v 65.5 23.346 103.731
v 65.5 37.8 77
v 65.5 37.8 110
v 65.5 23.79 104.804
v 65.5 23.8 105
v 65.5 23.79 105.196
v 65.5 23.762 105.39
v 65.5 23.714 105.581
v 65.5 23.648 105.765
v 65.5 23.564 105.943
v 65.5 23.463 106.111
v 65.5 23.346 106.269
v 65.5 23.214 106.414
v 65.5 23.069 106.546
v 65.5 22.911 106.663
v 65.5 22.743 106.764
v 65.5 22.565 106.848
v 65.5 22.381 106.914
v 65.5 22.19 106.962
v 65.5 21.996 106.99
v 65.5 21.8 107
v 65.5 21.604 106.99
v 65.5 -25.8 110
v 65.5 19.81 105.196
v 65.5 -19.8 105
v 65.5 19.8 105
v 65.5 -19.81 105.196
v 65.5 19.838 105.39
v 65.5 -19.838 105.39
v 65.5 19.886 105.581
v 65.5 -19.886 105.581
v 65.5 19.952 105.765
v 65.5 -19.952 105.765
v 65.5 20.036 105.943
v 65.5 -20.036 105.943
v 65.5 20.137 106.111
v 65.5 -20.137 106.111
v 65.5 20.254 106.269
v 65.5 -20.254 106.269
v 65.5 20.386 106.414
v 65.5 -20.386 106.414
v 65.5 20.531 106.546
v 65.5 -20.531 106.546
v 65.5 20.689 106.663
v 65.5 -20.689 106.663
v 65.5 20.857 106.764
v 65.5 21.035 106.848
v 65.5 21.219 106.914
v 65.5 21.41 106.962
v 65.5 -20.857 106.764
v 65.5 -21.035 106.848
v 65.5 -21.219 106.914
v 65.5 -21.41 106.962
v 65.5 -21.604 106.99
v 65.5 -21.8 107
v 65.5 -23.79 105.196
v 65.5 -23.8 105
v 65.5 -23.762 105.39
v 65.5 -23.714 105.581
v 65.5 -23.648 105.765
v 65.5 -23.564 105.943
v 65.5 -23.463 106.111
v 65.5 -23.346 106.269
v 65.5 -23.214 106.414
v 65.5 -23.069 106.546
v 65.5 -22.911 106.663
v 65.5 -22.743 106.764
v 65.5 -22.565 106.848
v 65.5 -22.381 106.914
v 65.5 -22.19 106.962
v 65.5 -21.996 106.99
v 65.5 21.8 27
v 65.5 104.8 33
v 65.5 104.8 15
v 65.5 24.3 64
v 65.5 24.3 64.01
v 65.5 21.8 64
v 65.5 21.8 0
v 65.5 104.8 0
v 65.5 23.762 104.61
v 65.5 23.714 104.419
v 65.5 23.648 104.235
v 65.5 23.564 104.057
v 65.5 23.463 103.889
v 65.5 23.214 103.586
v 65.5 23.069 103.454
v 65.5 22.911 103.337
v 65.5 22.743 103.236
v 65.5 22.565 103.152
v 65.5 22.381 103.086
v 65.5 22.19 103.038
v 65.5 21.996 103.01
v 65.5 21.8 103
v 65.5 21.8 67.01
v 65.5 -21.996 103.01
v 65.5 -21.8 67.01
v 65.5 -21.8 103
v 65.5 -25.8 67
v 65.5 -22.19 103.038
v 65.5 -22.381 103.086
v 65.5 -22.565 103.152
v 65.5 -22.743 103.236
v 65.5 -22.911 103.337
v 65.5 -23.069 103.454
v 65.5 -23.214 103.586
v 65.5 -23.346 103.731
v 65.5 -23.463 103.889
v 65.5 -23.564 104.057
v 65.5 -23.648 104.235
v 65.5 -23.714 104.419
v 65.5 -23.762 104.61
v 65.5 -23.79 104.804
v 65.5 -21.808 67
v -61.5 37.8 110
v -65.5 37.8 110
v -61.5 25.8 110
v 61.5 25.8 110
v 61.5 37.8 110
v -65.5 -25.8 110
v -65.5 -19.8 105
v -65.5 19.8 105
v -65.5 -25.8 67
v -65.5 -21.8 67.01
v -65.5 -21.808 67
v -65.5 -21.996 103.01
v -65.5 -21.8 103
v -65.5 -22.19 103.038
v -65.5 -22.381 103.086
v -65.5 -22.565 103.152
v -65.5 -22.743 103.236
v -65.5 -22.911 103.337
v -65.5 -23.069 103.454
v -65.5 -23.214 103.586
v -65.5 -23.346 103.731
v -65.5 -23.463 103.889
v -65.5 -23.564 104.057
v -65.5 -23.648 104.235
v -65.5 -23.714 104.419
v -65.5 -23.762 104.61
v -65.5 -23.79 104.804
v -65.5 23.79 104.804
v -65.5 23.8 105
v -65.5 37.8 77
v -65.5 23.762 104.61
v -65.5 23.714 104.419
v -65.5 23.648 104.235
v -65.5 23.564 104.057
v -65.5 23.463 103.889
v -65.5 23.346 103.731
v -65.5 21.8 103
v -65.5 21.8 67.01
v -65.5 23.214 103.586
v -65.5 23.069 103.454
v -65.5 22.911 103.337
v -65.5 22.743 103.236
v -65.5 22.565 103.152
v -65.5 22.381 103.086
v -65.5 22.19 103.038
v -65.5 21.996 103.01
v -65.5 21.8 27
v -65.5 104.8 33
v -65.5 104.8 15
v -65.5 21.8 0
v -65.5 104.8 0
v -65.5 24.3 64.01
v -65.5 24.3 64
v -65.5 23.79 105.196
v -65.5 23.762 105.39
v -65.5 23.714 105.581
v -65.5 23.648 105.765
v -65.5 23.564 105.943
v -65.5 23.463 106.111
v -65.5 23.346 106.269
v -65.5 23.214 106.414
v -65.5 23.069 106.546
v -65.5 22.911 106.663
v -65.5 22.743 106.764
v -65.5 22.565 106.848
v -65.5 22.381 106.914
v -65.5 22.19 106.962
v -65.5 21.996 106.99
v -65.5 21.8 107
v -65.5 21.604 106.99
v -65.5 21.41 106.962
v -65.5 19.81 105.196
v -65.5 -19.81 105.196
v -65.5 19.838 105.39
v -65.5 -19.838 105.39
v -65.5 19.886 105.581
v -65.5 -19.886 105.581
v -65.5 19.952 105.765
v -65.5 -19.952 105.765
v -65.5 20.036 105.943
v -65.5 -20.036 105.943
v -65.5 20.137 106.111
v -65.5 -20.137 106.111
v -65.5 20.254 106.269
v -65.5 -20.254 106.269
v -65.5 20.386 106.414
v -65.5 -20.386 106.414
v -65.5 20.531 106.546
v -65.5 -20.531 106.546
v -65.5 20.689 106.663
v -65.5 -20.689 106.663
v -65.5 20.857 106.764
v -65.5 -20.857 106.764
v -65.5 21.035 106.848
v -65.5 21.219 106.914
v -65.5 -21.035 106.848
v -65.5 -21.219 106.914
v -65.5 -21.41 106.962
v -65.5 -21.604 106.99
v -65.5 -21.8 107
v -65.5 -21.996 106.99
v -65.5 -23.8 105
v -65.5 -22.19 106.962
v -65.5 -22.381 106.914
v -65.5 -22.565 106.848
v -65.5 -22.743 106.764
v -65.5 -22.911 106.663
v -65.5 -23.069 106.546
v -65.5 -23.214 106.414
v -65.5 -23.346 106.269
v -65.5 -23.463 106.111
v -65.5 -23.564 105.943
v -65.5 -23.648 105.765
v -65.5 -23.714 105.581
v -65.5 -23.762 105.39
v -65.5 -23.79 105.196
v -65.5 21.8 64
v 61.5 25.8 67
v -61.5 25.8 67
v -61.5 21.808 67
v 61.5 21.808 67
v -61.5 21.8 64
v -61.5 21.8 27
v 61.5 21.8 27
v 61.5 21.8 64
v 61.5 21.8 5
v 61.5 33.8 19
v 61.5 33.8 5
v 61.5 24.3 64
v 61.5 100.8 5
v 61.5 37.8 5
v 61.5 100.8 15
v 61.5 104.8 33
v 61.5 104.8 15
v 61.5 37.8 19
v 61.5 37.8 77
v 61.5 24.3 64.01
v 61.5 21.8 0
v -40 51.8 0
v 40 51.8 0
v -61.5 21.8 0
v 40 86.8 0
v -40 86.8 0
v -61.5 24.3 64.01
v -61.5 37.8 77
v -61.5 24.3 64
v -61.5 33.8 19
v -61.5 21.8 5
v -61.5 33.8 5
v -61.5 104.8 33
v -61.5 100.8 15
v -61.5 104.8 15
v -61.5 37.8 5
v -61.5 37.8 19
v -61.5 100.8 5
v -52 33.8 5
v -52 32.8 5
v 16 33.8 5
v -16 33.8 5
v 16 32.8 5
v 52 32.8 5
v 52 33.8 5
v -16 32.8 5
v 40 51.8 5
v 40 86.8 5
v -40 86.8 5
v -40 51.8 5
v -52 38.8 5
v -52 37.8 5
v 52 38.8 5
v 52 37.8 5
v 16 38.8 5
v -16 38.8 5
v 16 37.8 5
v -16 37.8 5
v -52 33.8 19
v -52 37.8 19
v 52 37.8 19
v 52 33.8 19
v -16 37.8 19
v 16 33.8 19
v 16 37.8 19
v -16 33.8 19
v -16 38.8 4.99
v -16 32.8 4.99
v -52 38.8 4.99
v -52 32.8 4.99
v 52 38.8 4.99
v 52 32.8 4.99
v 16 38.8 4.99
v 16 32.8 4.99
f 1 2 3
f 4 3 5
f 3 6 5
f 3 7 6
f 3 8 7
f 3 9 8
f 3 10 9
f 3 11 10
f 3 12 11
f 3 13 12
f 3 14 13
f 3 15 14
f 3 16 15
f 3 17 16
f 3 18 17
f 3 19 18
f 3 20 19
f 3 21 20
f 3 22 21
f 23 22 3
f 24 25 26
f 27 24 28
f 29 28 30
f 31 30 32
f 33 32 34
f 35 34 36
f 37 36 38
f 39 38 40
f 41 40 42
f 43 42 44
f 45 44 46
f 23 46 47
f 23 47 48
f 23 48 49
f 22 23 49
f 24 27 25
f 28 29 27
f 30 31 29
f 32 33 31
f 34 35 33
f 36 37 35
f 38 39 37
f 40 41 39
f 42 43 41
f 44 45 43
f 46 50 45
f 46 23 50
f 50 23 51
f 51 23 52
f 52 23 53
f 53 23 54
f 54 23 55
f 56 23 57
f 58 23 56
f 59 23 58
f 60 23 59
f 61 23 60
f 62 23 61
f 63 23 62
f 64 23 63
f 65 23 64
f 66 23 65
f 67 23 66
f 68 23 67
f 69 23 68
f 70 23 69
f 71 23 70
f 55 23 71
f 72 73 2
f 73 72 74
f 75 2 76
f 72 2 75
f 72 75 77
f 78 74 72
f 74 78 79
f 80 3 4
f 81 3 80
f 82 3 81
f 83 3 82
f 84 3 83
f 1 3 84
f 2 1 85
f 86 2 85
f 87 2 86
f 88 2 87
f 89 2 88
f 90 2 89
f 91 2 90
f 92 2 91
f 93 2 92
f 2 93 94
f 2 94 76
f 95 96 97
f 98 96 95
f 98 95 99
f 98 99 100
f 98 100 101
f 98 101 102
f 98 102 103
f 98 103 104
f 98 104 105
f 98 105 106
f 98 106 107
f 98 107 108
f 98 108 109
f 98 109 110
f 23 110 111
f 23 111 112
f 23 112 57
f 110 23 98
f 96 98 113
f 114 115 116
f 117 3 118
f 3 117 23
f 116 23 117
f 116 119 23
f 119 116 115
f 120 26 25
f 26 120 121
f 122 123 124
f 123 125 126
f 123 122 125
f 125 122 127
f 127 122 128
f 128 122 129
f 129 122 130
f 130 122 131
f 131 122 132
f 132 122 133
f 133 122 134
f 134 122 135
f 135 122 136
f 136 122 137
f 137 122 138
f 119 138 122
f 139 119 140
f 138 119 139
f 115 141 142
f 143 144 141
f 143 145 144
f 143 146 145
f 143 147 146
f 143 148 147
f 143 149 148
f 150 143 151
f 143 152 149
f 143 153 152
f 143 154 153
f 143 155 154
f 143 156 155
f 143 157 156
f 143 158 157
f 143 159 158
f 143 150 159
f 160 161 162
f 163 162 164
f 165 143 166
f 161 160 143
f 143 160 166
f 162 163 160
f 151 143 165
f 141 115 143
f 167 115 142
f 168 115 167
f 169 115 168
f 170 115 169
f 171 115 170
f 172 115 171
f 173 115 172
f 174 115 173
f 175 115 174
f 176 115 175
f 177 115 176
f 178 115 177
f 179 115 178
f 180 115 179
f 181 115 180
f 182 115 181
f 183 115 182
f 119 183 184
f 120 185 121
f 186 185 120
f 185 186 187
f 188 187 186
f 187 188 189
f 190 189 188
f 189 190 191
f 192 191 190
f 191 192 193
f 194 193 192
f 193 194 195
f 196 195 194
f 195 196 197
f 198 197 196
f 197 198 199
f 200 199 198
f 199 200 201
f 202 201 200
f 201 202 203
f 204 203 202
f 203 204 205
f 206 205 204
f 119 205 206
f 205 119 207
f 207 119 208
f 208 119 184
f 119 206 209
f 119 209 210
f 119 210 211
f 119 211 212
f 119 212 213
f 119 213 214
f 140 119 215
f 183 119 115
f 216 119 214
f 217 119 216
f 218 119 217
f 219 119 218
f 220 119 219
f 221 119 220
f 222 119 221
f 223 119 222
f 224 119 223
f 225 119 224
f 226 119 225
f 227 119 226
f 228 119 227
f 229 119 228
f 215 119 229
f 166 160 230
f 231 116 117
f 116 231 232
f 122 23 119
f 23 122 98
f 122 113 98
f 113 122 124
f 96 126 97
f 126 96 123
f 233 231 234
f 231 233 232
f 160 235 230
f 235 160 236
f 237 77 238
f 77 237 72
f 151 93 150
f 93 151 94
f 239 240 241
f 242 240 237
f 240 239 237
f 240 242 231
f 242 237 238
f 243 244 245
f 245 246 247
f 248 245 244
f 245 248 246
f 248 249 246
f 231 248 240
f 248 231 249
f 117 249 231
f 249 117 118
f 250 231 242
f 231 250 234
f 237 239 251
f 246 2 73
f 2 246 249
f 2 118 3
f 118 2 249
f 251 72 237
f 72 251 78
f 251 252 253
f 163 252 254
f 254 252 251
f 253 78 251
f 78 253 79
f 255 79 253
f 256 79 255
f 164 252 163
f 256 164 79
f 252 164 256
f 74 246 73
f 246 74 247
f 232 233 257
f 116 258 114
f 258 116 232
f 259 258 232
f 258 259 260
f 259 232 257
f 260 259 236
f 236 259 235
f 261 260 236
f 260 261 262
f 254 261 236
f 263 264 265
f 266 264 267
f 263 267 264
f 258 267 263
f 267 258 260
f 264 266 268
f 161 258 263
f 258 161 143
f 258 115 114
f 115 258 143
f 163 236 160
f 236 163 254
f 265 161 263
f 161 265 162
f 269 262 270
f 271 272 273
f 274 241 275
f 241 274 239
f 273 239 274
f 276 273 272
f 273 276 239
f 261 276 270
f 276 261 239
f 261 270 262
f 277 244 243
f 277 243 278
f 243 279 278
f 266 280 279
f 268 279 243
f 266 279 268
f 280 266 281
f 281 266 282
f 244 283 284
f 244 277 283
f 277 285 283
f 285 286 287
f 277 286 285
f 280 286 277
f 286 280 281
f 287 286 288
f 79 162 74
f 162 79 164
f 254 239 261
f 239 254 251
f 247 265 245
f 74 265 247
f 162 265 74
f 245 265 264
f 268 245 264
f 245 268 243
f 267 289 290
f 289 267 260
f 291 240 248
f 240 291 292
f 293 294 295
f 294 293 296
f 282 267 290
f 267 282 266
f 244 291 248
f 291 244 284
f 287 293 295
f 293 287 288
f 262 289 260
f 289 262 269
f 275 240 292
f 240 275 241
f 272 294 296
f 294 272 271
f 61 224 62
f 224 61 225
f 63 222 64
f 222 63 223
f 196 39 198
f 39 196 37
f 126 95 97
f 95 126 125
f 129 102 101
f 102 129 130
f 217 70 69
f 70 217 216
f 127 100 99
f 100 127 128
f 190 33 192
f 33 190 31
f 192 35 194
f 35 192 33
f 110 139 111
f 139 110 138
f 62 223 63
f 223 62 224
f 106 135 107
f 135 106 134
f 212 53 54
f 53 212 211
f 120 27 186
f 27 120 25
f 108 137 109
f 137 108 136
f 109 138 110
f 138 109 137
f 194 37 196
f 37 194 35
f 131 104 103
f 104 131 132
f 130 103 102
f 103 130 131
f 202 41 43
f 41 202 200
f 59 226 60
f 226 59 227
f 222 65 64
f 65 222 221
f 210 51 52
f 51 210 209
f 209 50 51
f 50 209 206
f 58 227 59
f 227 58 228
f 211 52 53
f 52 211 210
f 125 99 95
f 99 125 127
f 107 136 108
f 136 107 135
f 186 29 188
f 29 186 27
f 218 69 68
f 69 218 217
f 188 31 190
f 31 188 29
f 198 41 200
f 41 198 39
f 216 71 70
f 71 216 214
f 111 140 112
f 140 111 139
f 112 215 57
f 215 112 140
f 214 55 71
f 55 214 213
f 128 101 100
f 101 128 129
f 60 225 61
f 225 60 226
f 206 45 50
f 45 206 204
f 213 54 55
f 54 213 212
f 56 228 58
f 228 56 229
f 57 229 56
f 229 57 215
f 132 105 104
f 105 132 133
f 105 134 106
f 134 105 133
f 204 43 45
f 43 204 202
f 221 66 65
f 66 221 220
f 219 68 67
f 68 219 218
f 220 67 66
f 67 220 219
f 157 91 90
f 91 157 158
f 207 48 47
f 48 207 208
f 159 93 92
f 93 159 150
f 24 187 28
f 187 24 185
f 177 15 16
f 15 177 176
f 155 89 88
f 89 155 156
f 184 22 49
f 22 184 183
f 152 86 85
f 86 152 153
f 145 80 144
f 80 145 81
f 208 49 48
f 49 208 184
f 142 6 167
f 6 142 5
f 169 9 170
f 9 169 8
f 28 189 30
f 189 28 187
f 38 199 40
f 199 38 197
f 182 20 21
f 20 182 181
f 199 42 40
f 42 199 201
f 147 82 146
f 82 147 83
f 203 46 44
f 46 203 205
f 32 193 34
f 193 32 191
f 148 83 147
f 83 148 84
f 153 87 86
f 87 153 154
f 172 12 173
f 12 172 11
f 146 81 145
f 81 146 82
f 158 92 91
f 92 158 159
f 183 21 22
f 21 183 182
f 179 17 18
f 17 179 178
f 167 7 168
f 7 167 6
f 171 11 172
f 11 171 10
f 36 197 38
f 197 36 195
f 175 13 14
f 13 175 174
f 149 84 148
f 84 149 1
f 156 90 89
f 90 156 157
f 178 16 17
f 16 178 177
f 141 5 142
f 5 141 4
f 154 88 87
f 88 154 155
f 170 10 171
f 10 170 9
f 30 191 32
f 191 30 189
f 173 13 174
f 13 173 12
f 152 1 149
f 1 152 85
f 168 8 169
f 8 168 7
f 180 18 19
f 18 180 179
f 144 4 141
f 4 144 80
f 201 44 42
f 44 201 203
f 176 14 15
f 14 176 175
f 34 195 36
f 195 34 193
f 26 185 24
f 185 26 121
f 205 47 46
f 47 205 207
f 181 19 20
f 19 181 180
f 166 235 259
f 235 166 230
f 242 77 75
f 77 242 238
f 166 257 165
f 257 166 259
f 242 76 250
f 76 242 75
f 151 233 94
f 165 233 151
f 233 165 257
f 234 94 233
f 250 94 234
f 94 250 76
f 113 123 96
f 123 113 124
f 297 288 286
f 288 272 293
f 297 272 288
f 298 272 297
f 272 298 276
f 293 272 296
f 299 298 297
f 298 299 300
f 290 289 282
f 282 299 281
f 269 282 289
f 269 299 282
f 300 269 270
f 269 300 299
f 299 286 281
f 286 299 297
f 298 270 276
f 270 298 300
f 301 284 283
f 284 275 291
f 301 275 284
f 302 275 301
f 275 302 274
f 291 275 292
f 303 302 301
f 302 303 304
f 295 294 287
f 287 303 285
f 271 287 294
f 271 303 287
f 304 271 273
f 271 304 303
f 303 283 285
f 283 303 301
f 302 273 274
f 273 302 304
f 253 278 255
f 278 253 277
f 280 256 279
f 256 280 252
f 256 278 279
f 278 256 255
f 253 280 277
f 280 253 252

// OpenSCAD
// =============================================================================
//  定刻起床装置 個人簡易型 SAC-5A型  制御タイマー(型式 SUK-49) 用
//  ベッドフレーム(43 x 43 角パイプ)引っ掛けホルダー
// -----------------------------------------------------------------------------
//  構造
//    ・角パイプに「上からかぶせる」サドル(∩形)
//    ・その外側面に、左右2枚のサイドプレートでぶら下がるポケット
//    ・制御タイマーは上から落とし込んで差し込む
//
//  寸法根拠 (新光電業(株) SAC-5A型 取扱説明書「主な製品仕様」)
//    制御タイマー(SUK-49)  高さ 120 × 幅 120 × 奥行 60 (mm) / 500 (g)
//
//  設計上の逃がし
//    ・背面 : 送風機プラグ差込口 / 電源ケーブル差込口 / 電池カバー(ツマミ)
//             → 背面はほぼ全開。さらにレール外面から STANDOFF だけ離す。
//             → 落とし込み量 DROP により、差込口が角パイプの下端より下に来る
//                ので、プラグを挿しても角パイプに当たらない。
//    ・正面 : 下半分が操作ボタン11個 → リップは FRONT_LIP_H の低い縁のみ。
//             上部の停止A/停止B・ディスプレイはサドルより上に出る。
//
//  座標系 : Z=0 レール上面 / Y=0 レール断面中心 / X = レール長手方向
//           +Y = ベッドの外側(ポケット側) / -Y = ベッド側
//  単位   : mm
// =============================================================================

$fn = 64;

// --------------------------------------------------- 制御タイマー(SUK-49)
DEV_W   = 120;   // 幅   (X)
DEV_H   = 120;   // 高さ (Z) ※参考値。ポケットは全高を覆わない
DEV_D   = 60;    // 奥行 (Y)
DEV_CLR = 1.5;   // 片側クリアランス(角R・印刷誤差ぶん)

// ------------------------------------------------------- ベッドフレーム
RAIL_W   = 43;   // 角パイプ 幅   (Y)
RAIL_H   = 43;   // 角パイプ 高さ (Z) ※掛かりは LEG_DROP で決まる
RAIL_CLR = 0.6;  // はめあいクリアランス(全幅)。きつい→0.8 / 緩い→0.4

// --------------------------------------------------------------- 肉厚等
WALL     = 4;    // 一般肉厚(サイドプレート・リップ)
FLOOR_T  = 5;    // ポケット床厚
TOP_T    = 5;    // サドル天板厚
LEG_DROP = 38;   // サドル脚の掛かり深さ(RAIL_H=43 に対して)

// ------------------------------------------------------------- ポケット
STANDOFF     = 12;  // サドル外面 → 本体背面 の隙間(コネクタ/ツマミ逃がし)
DROP         = 100; // レール上面 → 本体底面 の落とし込み量
SIDE_H_BACK  = 72;  // サイドプレート高さ(背面側)
SIDE_H_FRONT = 28;  // サイドプレート高さ(正面側) ※テーパでつなぐ
FRONT_LIP_H  = 10;  // 正面リップ高さ(操作ボタンを塞がない高さ)
BACK_LIP_H   = 14;  // 背面リップ高さ(本体の位置決め)

// ----------------------------------------------------------- クランプねじ
//   既定では「かぶせるだけ」のシンプルな形。レール上を滑るのが気になる場合だけ
//   CLAMP_SCREWS = true にすると、ベッド側の脚にねじボスが生える。
CLAMP_SCREWS = false; // M4x25 を2本、ベッド側の脚から締めてガタ止め
SCREW_D      = 3.4;   // M4 タッピング下穴
BOSS_D       = 11;    // ねじボス外径
BOSS_L       = 6;     // ねじボス突出量(45度テーパでサポートレス)
SCREW_X      = 30;    // ねじ位置(中心からの距離)
SCREW_Z      = -20;   // ねじ高さ

// ------------------------------------------------------------- オプション
LIGHTEN      = false; // サドル天板の肉抜き窓(見た目より軽さを取るとき true)
FLOOR_WINDOW = true; // 床の肉抜き / ゴミ抜き窓
CABLE_NOTCH  = true; // 背面リップのケーブル逃がし(左右対称)
PLACE_ON_BED = true; // true: 底面が Z=0 に来るよう移動(スライサ用)

// =============================================================================
//  派生寸法
// =============================================================================
cav_w     = RAIL_W + RAIL_CLR;      // レールが通る空間の幅
cav_y     = cav_w / 2;              // その内壁 Y
out_y     = cav_y + WALL;           // サドル外面 Y

pocket_w  = DEV_W + 2 * DEV_CLR;
pocket_d  = DEV_D + 2 * DEV_CLR;
px        = pocket_w / 2;           // ポケット内壁 X
cx        = px + WALL;              // 外壁 X (= サイドプレート外面)

floor_top = -DROP;                  // 本体が載る面
floor_bot = floor_top - FLOOR_T;

back_y    = out_y + STANDOFF;       // 本体 背面の位置
front_y   = back_y + pocket_d;      // 本体 正面の位置
cf_y      = front_y + WALL;         // ポケット外面(正面側)

saddle_x  = 2 * cx;                 // サドル長さ = サイドプレート外面まで

// 対角2点から直方体をつくる汎用モジュール
module bx(x0, x1, y0, y1, z0, z1)
    translate([min(x0, x1), min(y0, y1), min(z0, z1)])
        cube([abs(x1 - x0), abs(y1 - y0), abs(z1 - z0)]);

// =============================================================================
//  1. サドル : 角パイプに上からかぶせる ∩ 形
// =============================================================================
module saddle() {
    // 天板
    bx(-cx, cx, -out_y, out_y, 0, TOP_T);
    // 脚(ベッド側 / 外側)
    bx(-cx, cx, -out_y, -cav_y, -LEG_DROP, TOP_T);
    bx(-cx, cx,  cav_y,  out_y, -LEG_DROP, TOP_T);
    // クランプねじボス : 45度円錐でサポートレス
    if (CLAMP_SCREWS)
        for (sx = [-1, 1])
            translate([sx * SCREW_X, -out_y, SCREW_Z])
                rotate([90, 0, 0])
                    cylinder(d1 = BOSS_D + 2 * BOSS_L, d2 = BOSS_D, h = BOSS_L);
}

// サドル天板の肉抜き窓
//   脚(z < 0)は切らないので、天板を抜いても全体は一体のまま繋がる。
module saddle_lighten() {
    if (LIGHTEN)
        for (sx = [-1, 1])
            bx(sx * 15, sx * 47, -out_y - 1, out_y + 1, 0, TOP_T + 1);
}

// レールが入る空間(下方向に開口)+ 差し込みリード面取り + 天板内隅の逃がし
module rail_cavity() {
    len = saddle_x + 20;
    bx(-len / 2, len / 2, -cav_y, cav_y, -(LEG_DROP + 40), 0);
    // 下端の面取り(はめやすく)
    hull() {
        bx(-len / 2, len / 2, -cav_y, cav_y, -LEG_DROP, -LEG_DROP + 0.01);
        bx(-len / 2, len / 2, -(cav_y + 2.5), cav_y + 2.5,
           -LEG_DROP - 3, -LEG_DROP - 2.99);
    }
    // 天板内隅の逃がし(積層のダレとパイプ角Rを吸収)
    for (sy = [-1, 1])
        translate([-len / 2, sy * cav_y, 0])
            rotate([0, 90, 0])
                cylinder(d = 4, h = len);
}

module clamp_holes() {
    if (CLAMP_SCREWS)
        for (sx = [-1, 1])
            translate([sx * SCREW_X, cav_y - 0.01, SCREW_Z])
                rotate([90, 0, 0])
                    cylinder(d = SCREW_D, h = cav_y + out_y + BOSS_L + 2);
}

// =============================================================================
//  2. サイドプレート : サドル → スタンドオフ → ポケット側壁 を一枚でつなぐ
//     Y-Z 平面の板なので、片持ち曲げに対して最も効率のよい向きになる
// =============================================================================
SIDE_PROFILE = [
    [cav_y,  TOP_T],                      // 背面上端(サドル天板の高さ)
    [back_y, TOP_T],                      // スタンドオフぶん張り出し
    [back_y, floor_top + SIDE_H_BACK],    // 側壁 背面側の高さ
    [cf_y,   floor_top + SIDE_H_FRONT],   // 正面へ向かってテーパ
    [cf_y,   floor_bot],                  // 正面下端
    [cav_y,  floor_bot],                  // 背面下端
];

module side_plate() {
    translate([px, 0, 0])
        rotate([90, 0, 90])            // (x,y,z) -> (z,x,y) : YZ平面の板をX方向に押し出す
            linear_extrude(WALL)
                polygon(SIDE_PROFILE);
}

module side_plates() {
    side_plate();
    mirror([1, 0, 0]) side_plate();
}

// =============================================================================
//  3. ポケット : 床 + 前後リップ (背面中央と正面上半分は開放のまま)
// =============================================================================
module cradle() {
    // 床(サドル直下まで伸ばしてサイドプレートと一体化)
    bx(-cx, cx, cav_y, cf_y, floor_bot, floor_top);
    // 正面リップ(操作ボタンを避ける低さ)
    bx(-cx, cx, front_y, cf_y, floor_bot, floor_top + FRONT_LIP_H);
    // 背面リップ(本体の位置決め)
    bx(-cx, cx, back_y - WALL, back_y, floor_bot, floor_top + BACK_LIP_H);
}

module floor_cut() {
    if (FLOOR_WINDOW)
        bx(-40, 40, back_y + 14, front_y - 14, floor_bot - 1, floor_top + 1);
}

// 背面リップのケーブル逃がし(左右対称なので取り付け向きを選ばない)
module cable_cut() {
    if (CABLE_NOTCH)
        for (sx = [-1, 1])
            bx(sx * 16, sx * 52, back_y - WALL - 1, back_y + 1,
               floor_top - 0.01, floor_top + BACK_LIP_H + 1);
}

// =============================================================================
//  組み立て
// =============================================================================
module holder() {
    difference() {
        union() {
            saddle();
            side_plates();
            cradle();
        }
        rail_cavity();
        saddle_lighten();
        clamp_holes();
        floor_cut();
        cable_cut();
    }
}

// 参考表示 : 制御タイマー本体(STL には含まれない)
module device_ghost() {
    %translate([-DEV_W / 2, back_y, floor_top])
        cube([DEV_W, DEV_D, DEV_H]);
}

// 参考表示 : ベッドフレーム角パイプ
module rail_ghost() {
    %translate([-150, -RAIL_W / 2, -RAIL_H])
        cube([300, RAIL_W, RAIL_H]);
}

if (PLACE_ON_BED)
    translate([0, 0, -floor_bot]) holder();
else
    holder();
